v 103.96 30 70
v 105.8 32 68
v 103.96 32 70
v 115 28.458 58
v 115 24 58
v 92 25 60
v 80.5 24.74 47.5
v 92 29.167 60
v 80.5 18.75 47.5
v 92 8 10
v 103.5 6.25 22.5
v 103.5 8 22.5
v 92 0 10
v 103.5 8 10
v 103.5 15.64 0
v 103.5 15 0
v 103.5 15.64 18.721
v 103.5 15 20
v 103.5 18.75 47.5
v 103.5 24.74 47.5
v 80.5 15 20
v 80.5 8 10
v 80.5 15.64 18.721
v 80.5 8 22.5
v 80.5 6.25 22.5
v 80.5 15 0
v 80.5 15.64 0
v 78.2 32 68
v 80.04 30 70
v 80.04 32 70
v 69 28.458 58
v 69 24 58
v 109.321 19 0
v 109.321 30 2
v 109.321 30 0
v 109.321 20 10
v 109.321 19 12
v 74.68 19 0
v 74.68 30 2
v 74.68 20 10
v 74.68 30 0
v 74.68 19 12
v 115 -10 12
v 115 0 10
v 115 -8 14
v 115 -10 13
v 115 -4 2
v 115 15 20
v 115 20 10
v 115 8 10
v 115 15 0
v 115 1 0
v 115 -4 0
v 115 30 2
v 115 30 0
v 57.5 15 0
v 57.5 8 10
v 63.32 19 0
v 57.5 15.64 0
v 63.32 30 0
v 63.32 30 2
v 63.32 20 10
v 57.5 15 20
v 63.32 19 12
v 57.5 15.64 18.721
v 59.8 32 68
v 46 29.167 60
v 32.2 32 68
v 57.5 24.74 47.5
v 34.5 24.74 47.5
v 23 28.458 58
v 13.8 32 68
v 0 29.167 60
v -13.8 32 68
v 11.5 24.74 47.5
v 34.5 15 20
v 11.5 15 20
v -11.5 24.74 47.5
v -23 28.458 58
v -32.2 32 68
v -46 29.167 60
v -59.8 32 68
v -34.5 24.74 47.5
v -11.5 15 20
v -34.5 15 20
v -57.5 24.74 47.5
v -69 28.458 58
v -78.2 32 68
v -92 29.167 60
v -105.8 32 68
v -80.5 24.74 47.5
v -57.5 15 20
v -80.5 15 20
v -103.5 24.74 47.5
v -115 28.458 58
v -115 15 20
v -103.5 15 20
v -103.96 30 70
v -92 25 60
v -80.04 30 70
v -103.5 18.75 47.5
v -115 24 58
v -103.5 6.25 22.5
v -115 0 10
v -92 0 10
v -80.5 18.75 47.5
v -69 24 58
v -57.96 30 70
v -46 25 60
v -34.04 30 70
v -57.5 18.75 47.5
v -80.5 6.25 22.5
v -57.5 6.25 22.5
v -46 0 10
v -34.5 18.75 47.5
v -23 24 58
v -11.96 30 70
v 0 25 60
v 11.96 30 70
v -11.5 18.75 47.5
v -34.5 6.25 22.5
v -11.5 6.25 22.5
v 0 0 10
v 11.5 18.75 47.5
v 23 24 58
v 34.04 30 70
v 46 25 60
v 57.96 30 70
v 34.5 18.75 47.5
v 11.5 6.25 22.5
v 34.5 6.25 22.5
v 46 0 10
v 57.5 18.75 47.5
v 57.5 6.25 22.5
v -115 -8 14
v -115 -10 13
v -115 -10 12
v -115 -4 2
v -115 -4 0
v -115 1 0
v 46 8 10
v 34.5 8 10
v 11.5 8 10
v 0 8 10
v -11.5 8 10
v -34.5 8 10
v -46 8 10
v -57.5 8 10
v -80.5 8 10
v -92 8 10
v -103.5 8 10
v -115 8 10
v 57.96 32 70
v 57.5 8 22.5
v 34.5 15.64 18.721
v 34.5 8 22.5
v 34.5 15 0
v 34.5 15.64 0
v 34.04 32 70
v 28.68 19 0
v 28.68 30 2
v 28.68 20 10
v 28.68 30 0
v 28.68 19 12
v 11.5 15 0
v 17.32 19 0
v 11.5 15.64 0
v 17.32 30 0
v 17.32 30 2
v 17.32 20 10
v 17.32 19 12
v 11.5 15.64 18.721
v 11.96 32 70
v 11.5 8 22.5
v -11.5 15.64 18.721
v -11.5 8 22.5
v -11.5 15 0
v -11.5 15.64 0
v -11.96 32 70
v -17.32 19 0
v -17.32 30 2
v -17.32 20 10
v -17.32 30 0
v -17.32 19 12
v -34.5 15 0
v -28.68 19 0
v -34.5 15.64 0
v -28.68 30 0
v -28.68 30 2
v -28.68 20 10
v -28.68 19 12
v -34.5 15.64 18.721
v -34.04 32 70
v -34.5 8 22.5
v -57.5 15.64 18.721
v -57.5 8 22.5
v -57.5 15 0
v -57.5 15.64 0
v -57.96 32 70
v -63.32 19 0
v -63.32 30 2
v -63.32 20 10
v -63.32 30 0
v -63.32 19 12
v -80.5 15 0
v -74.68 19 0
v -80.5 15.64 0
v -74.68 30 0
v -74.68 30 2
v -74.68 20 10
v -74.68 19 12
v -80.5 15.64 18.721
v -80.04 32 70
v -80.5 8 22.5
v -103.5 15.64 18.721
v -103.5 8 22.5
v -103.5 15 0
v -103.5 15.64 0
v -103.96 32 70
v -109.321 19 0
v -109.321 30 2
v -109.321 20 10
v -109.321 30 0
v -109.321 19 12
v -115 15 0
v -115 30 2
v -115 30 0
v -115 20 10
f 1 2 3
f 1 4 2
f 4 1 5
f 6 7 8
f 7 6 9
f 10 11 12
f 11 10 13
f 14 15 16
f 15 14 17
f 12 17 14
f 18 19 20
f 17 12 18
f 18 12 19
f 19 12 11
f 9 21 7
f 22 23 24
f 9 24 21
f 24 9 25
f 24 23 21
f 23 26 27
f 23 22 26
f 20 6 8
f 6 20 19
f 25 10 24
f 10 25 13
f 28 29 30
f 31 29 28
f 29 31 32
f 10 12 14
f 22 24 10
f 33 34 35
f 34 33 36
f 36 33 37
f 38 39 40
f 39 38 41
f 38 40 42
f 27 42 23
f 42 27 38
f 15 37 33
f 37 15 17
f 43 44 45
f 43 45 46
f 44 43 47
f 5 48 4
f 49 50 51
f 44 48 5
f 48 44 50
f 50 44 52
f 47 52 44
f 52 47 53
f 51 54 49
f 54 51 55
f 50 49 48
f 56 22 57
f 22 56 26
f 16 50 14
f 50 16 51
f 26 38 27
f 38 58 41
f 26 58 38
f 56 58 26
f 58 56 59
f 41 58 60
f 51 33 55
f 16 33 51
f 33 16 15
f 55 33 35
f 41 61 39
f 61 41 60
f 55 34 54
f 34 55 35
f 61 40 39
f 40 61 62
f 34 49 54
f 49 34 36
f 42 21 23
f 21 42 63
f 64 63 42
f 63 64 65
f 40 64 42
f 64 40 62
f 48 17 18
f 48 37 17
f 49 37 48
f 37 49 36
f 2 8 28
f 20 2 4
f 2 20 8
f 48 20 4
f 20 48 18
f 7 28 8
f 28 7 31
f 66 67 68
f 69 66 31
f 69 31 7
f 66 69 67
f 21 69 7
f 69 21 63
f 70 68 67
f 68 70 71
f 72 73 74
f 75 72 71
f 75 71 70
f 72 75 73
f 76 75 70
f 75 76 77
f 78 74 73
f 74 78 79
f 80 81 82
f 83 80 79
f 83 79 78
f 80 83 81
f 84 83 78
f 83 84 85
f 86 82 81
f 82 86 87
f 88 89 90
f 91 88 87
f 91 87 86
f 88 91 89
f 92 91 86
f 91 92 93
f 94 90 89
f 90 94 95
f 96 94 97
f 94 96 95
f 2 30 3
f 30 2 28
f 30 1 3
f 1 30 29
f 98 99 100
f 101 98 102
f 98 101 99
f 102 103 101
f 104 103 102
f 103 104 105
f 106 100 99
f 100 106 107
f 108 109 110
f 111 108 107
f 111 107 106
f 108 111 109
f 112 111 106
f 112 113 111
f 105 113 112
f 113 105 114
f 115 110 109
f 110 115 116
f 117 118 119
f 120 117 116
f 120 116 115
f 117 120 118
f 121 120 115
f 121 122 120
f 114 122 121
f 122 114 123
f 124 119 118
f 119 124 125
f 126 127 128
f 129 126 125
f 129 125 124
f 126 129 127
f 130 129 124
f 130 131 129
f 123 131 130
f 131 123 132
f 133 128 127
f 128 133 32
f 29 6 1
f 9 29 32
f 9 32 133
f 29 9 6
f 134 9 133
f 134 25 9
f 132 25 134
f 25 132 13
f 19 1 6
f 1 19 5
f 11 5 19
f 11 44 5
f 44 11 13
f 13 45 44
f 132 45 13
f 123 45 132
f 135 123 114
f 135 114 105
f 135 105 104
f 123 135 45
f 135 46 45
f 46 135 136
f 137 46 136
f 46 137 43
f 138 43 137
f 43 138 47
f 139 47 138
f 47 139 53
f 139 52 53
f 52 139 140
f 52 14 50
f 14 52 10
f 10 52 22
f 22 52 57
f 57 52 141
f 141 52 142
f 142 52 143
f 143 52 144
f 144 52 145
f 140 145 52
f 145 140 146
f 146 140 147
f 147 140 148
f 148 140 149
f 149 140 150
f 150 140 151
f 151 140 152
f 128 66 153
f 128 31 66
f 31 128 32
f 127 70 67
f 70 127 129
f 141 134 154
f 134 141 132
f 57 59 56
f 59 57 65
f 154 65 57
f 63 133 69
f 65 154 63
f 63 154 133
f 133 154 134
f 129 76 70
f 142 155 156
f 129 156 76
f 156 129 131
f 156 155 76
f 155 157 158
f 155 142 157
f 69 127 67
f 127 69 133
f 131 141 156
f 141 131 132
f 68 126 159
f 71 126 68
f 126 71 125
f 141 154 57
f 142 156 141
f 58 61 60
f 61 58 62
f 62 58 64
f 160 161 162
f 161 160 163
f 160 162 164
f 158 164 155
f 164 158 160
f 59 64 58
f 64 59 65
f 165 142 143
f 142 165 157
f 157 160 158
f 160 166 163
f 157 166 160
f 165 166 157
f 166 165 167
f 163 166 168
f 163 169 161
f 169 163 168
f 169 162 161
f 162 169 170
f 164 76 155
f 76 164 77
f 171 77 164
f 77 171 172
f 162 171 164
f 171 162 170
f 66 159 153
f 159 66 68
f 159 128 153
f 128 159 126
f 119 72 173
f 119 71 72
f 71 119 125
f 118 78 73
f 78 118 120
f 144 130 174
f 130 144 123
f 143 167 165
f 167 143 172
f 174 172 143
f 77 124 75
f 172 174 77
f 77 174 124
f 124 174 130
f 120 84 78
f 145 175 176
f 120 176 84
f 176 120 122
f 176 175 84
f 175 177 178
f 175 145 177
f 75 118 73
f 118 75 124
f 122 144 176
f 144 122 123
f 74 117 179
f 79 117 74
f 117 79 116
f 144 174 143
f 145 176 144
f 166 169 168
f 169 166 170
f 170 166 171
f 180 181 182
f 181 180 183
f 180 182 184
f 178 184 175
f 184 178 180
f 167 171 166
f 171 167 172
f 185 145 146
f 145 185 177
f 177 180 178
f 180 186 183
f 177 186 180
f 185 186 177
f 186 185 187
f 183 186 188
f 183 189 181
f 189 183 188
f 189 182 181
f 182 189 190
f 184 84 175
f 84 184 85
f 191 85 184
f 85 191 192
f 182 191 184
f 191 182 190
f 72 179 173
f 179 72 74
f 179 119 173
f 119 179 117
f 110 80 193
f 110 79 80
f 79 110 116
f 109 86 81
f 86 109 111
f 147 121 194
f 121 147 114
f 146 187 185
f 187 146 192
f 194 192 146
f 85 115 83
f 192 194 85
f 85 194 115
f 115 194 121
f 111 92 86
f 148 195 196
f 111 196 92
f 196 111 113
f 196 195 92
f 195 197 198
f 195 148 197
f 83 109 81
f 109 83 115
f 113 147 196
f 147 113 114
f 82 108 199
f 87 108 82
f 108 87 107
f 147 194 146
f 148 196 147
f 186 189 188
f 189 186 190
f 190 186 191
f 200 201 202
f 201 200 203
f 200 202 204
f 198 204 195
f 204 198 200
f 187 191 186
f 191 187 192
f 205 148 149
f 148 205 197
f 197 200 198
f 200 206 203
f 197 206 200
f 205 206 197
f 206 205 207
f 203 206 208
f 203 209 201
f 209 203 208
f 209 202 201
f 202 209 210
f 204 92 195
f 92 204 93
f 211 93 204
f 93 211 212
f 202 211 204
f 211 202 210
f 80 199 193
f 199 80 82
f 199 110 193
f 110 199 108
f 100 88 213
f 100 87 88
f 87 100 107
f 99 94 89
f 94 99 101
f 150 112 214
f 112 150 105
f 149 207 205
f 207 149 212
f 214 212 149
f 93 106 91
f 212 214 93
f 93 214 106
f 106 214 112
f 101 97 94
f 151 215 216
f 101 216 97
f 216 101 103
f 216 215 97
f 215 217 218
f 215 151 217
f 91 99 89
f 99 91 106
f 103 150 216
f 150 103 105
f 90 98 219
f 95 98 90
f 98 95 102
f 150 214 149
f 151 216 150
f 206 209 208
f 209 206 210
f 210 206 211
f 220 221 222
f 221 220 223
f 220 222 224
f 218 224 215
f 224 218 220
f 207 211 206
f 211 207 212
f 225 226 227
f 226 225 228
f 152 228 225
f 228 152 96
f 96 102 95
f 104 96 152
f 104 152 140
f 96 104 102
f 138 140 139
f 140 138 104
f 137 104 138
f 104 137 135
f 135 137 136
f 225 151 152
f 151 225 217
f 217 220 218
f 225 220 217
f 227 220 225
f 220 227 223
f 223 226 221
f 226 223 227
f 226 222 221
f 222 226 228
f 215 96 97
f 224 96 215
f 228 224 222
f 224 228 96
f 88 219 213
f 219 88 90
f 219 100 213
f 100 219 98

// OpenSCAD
wall=1.5;
width=46;
depth=60;
height=12;


module rombe() {
    rotate([0,90,0])
        linear_extrude(height = 100, center = false, convexity = 10)
        resize([50,46/2])
        circle(10,$fn=6);
}

module v2mod() {
    difference() {
        rotate([90,0,0])
            linear_extrude(height = 46, center = true, convexity = 10)
            polygon(
                    [[-4,0]
                    ,[-4,2]
                    ,[-10,12]
                    ,[-10,13]
                    ,[-8,14]
                    ,[0,10]
                    ,[30,70]
                    ,[32,70]
                    ,[32,68]
                    ,[15,20]
                    ,[20,10]
                    ,[30,2]
                    ,[30,0]

                    ,[15,0]
                    ,[8,10]
                    ,[1,0]
                    ]);
        union() {
            translate([0,-23,83])
                rombe();
            translate([0,0,35])
                rombe();
            translate([0,23,83])
                rombe();
            translate([15 + 8,0,0])
            cube([30,46/2,60],center=true);
            translate([29,0,-1])
            cylinder(20,20,20,$fn=6);
        }
    }
}

module stand() {
    rotate([0,0,90])
        for (a =[-92:46:92]) {
            translate([0,a,0])
                v2mod();
        }
}

$fa = 1;
$fs = 0.4;
stand();
